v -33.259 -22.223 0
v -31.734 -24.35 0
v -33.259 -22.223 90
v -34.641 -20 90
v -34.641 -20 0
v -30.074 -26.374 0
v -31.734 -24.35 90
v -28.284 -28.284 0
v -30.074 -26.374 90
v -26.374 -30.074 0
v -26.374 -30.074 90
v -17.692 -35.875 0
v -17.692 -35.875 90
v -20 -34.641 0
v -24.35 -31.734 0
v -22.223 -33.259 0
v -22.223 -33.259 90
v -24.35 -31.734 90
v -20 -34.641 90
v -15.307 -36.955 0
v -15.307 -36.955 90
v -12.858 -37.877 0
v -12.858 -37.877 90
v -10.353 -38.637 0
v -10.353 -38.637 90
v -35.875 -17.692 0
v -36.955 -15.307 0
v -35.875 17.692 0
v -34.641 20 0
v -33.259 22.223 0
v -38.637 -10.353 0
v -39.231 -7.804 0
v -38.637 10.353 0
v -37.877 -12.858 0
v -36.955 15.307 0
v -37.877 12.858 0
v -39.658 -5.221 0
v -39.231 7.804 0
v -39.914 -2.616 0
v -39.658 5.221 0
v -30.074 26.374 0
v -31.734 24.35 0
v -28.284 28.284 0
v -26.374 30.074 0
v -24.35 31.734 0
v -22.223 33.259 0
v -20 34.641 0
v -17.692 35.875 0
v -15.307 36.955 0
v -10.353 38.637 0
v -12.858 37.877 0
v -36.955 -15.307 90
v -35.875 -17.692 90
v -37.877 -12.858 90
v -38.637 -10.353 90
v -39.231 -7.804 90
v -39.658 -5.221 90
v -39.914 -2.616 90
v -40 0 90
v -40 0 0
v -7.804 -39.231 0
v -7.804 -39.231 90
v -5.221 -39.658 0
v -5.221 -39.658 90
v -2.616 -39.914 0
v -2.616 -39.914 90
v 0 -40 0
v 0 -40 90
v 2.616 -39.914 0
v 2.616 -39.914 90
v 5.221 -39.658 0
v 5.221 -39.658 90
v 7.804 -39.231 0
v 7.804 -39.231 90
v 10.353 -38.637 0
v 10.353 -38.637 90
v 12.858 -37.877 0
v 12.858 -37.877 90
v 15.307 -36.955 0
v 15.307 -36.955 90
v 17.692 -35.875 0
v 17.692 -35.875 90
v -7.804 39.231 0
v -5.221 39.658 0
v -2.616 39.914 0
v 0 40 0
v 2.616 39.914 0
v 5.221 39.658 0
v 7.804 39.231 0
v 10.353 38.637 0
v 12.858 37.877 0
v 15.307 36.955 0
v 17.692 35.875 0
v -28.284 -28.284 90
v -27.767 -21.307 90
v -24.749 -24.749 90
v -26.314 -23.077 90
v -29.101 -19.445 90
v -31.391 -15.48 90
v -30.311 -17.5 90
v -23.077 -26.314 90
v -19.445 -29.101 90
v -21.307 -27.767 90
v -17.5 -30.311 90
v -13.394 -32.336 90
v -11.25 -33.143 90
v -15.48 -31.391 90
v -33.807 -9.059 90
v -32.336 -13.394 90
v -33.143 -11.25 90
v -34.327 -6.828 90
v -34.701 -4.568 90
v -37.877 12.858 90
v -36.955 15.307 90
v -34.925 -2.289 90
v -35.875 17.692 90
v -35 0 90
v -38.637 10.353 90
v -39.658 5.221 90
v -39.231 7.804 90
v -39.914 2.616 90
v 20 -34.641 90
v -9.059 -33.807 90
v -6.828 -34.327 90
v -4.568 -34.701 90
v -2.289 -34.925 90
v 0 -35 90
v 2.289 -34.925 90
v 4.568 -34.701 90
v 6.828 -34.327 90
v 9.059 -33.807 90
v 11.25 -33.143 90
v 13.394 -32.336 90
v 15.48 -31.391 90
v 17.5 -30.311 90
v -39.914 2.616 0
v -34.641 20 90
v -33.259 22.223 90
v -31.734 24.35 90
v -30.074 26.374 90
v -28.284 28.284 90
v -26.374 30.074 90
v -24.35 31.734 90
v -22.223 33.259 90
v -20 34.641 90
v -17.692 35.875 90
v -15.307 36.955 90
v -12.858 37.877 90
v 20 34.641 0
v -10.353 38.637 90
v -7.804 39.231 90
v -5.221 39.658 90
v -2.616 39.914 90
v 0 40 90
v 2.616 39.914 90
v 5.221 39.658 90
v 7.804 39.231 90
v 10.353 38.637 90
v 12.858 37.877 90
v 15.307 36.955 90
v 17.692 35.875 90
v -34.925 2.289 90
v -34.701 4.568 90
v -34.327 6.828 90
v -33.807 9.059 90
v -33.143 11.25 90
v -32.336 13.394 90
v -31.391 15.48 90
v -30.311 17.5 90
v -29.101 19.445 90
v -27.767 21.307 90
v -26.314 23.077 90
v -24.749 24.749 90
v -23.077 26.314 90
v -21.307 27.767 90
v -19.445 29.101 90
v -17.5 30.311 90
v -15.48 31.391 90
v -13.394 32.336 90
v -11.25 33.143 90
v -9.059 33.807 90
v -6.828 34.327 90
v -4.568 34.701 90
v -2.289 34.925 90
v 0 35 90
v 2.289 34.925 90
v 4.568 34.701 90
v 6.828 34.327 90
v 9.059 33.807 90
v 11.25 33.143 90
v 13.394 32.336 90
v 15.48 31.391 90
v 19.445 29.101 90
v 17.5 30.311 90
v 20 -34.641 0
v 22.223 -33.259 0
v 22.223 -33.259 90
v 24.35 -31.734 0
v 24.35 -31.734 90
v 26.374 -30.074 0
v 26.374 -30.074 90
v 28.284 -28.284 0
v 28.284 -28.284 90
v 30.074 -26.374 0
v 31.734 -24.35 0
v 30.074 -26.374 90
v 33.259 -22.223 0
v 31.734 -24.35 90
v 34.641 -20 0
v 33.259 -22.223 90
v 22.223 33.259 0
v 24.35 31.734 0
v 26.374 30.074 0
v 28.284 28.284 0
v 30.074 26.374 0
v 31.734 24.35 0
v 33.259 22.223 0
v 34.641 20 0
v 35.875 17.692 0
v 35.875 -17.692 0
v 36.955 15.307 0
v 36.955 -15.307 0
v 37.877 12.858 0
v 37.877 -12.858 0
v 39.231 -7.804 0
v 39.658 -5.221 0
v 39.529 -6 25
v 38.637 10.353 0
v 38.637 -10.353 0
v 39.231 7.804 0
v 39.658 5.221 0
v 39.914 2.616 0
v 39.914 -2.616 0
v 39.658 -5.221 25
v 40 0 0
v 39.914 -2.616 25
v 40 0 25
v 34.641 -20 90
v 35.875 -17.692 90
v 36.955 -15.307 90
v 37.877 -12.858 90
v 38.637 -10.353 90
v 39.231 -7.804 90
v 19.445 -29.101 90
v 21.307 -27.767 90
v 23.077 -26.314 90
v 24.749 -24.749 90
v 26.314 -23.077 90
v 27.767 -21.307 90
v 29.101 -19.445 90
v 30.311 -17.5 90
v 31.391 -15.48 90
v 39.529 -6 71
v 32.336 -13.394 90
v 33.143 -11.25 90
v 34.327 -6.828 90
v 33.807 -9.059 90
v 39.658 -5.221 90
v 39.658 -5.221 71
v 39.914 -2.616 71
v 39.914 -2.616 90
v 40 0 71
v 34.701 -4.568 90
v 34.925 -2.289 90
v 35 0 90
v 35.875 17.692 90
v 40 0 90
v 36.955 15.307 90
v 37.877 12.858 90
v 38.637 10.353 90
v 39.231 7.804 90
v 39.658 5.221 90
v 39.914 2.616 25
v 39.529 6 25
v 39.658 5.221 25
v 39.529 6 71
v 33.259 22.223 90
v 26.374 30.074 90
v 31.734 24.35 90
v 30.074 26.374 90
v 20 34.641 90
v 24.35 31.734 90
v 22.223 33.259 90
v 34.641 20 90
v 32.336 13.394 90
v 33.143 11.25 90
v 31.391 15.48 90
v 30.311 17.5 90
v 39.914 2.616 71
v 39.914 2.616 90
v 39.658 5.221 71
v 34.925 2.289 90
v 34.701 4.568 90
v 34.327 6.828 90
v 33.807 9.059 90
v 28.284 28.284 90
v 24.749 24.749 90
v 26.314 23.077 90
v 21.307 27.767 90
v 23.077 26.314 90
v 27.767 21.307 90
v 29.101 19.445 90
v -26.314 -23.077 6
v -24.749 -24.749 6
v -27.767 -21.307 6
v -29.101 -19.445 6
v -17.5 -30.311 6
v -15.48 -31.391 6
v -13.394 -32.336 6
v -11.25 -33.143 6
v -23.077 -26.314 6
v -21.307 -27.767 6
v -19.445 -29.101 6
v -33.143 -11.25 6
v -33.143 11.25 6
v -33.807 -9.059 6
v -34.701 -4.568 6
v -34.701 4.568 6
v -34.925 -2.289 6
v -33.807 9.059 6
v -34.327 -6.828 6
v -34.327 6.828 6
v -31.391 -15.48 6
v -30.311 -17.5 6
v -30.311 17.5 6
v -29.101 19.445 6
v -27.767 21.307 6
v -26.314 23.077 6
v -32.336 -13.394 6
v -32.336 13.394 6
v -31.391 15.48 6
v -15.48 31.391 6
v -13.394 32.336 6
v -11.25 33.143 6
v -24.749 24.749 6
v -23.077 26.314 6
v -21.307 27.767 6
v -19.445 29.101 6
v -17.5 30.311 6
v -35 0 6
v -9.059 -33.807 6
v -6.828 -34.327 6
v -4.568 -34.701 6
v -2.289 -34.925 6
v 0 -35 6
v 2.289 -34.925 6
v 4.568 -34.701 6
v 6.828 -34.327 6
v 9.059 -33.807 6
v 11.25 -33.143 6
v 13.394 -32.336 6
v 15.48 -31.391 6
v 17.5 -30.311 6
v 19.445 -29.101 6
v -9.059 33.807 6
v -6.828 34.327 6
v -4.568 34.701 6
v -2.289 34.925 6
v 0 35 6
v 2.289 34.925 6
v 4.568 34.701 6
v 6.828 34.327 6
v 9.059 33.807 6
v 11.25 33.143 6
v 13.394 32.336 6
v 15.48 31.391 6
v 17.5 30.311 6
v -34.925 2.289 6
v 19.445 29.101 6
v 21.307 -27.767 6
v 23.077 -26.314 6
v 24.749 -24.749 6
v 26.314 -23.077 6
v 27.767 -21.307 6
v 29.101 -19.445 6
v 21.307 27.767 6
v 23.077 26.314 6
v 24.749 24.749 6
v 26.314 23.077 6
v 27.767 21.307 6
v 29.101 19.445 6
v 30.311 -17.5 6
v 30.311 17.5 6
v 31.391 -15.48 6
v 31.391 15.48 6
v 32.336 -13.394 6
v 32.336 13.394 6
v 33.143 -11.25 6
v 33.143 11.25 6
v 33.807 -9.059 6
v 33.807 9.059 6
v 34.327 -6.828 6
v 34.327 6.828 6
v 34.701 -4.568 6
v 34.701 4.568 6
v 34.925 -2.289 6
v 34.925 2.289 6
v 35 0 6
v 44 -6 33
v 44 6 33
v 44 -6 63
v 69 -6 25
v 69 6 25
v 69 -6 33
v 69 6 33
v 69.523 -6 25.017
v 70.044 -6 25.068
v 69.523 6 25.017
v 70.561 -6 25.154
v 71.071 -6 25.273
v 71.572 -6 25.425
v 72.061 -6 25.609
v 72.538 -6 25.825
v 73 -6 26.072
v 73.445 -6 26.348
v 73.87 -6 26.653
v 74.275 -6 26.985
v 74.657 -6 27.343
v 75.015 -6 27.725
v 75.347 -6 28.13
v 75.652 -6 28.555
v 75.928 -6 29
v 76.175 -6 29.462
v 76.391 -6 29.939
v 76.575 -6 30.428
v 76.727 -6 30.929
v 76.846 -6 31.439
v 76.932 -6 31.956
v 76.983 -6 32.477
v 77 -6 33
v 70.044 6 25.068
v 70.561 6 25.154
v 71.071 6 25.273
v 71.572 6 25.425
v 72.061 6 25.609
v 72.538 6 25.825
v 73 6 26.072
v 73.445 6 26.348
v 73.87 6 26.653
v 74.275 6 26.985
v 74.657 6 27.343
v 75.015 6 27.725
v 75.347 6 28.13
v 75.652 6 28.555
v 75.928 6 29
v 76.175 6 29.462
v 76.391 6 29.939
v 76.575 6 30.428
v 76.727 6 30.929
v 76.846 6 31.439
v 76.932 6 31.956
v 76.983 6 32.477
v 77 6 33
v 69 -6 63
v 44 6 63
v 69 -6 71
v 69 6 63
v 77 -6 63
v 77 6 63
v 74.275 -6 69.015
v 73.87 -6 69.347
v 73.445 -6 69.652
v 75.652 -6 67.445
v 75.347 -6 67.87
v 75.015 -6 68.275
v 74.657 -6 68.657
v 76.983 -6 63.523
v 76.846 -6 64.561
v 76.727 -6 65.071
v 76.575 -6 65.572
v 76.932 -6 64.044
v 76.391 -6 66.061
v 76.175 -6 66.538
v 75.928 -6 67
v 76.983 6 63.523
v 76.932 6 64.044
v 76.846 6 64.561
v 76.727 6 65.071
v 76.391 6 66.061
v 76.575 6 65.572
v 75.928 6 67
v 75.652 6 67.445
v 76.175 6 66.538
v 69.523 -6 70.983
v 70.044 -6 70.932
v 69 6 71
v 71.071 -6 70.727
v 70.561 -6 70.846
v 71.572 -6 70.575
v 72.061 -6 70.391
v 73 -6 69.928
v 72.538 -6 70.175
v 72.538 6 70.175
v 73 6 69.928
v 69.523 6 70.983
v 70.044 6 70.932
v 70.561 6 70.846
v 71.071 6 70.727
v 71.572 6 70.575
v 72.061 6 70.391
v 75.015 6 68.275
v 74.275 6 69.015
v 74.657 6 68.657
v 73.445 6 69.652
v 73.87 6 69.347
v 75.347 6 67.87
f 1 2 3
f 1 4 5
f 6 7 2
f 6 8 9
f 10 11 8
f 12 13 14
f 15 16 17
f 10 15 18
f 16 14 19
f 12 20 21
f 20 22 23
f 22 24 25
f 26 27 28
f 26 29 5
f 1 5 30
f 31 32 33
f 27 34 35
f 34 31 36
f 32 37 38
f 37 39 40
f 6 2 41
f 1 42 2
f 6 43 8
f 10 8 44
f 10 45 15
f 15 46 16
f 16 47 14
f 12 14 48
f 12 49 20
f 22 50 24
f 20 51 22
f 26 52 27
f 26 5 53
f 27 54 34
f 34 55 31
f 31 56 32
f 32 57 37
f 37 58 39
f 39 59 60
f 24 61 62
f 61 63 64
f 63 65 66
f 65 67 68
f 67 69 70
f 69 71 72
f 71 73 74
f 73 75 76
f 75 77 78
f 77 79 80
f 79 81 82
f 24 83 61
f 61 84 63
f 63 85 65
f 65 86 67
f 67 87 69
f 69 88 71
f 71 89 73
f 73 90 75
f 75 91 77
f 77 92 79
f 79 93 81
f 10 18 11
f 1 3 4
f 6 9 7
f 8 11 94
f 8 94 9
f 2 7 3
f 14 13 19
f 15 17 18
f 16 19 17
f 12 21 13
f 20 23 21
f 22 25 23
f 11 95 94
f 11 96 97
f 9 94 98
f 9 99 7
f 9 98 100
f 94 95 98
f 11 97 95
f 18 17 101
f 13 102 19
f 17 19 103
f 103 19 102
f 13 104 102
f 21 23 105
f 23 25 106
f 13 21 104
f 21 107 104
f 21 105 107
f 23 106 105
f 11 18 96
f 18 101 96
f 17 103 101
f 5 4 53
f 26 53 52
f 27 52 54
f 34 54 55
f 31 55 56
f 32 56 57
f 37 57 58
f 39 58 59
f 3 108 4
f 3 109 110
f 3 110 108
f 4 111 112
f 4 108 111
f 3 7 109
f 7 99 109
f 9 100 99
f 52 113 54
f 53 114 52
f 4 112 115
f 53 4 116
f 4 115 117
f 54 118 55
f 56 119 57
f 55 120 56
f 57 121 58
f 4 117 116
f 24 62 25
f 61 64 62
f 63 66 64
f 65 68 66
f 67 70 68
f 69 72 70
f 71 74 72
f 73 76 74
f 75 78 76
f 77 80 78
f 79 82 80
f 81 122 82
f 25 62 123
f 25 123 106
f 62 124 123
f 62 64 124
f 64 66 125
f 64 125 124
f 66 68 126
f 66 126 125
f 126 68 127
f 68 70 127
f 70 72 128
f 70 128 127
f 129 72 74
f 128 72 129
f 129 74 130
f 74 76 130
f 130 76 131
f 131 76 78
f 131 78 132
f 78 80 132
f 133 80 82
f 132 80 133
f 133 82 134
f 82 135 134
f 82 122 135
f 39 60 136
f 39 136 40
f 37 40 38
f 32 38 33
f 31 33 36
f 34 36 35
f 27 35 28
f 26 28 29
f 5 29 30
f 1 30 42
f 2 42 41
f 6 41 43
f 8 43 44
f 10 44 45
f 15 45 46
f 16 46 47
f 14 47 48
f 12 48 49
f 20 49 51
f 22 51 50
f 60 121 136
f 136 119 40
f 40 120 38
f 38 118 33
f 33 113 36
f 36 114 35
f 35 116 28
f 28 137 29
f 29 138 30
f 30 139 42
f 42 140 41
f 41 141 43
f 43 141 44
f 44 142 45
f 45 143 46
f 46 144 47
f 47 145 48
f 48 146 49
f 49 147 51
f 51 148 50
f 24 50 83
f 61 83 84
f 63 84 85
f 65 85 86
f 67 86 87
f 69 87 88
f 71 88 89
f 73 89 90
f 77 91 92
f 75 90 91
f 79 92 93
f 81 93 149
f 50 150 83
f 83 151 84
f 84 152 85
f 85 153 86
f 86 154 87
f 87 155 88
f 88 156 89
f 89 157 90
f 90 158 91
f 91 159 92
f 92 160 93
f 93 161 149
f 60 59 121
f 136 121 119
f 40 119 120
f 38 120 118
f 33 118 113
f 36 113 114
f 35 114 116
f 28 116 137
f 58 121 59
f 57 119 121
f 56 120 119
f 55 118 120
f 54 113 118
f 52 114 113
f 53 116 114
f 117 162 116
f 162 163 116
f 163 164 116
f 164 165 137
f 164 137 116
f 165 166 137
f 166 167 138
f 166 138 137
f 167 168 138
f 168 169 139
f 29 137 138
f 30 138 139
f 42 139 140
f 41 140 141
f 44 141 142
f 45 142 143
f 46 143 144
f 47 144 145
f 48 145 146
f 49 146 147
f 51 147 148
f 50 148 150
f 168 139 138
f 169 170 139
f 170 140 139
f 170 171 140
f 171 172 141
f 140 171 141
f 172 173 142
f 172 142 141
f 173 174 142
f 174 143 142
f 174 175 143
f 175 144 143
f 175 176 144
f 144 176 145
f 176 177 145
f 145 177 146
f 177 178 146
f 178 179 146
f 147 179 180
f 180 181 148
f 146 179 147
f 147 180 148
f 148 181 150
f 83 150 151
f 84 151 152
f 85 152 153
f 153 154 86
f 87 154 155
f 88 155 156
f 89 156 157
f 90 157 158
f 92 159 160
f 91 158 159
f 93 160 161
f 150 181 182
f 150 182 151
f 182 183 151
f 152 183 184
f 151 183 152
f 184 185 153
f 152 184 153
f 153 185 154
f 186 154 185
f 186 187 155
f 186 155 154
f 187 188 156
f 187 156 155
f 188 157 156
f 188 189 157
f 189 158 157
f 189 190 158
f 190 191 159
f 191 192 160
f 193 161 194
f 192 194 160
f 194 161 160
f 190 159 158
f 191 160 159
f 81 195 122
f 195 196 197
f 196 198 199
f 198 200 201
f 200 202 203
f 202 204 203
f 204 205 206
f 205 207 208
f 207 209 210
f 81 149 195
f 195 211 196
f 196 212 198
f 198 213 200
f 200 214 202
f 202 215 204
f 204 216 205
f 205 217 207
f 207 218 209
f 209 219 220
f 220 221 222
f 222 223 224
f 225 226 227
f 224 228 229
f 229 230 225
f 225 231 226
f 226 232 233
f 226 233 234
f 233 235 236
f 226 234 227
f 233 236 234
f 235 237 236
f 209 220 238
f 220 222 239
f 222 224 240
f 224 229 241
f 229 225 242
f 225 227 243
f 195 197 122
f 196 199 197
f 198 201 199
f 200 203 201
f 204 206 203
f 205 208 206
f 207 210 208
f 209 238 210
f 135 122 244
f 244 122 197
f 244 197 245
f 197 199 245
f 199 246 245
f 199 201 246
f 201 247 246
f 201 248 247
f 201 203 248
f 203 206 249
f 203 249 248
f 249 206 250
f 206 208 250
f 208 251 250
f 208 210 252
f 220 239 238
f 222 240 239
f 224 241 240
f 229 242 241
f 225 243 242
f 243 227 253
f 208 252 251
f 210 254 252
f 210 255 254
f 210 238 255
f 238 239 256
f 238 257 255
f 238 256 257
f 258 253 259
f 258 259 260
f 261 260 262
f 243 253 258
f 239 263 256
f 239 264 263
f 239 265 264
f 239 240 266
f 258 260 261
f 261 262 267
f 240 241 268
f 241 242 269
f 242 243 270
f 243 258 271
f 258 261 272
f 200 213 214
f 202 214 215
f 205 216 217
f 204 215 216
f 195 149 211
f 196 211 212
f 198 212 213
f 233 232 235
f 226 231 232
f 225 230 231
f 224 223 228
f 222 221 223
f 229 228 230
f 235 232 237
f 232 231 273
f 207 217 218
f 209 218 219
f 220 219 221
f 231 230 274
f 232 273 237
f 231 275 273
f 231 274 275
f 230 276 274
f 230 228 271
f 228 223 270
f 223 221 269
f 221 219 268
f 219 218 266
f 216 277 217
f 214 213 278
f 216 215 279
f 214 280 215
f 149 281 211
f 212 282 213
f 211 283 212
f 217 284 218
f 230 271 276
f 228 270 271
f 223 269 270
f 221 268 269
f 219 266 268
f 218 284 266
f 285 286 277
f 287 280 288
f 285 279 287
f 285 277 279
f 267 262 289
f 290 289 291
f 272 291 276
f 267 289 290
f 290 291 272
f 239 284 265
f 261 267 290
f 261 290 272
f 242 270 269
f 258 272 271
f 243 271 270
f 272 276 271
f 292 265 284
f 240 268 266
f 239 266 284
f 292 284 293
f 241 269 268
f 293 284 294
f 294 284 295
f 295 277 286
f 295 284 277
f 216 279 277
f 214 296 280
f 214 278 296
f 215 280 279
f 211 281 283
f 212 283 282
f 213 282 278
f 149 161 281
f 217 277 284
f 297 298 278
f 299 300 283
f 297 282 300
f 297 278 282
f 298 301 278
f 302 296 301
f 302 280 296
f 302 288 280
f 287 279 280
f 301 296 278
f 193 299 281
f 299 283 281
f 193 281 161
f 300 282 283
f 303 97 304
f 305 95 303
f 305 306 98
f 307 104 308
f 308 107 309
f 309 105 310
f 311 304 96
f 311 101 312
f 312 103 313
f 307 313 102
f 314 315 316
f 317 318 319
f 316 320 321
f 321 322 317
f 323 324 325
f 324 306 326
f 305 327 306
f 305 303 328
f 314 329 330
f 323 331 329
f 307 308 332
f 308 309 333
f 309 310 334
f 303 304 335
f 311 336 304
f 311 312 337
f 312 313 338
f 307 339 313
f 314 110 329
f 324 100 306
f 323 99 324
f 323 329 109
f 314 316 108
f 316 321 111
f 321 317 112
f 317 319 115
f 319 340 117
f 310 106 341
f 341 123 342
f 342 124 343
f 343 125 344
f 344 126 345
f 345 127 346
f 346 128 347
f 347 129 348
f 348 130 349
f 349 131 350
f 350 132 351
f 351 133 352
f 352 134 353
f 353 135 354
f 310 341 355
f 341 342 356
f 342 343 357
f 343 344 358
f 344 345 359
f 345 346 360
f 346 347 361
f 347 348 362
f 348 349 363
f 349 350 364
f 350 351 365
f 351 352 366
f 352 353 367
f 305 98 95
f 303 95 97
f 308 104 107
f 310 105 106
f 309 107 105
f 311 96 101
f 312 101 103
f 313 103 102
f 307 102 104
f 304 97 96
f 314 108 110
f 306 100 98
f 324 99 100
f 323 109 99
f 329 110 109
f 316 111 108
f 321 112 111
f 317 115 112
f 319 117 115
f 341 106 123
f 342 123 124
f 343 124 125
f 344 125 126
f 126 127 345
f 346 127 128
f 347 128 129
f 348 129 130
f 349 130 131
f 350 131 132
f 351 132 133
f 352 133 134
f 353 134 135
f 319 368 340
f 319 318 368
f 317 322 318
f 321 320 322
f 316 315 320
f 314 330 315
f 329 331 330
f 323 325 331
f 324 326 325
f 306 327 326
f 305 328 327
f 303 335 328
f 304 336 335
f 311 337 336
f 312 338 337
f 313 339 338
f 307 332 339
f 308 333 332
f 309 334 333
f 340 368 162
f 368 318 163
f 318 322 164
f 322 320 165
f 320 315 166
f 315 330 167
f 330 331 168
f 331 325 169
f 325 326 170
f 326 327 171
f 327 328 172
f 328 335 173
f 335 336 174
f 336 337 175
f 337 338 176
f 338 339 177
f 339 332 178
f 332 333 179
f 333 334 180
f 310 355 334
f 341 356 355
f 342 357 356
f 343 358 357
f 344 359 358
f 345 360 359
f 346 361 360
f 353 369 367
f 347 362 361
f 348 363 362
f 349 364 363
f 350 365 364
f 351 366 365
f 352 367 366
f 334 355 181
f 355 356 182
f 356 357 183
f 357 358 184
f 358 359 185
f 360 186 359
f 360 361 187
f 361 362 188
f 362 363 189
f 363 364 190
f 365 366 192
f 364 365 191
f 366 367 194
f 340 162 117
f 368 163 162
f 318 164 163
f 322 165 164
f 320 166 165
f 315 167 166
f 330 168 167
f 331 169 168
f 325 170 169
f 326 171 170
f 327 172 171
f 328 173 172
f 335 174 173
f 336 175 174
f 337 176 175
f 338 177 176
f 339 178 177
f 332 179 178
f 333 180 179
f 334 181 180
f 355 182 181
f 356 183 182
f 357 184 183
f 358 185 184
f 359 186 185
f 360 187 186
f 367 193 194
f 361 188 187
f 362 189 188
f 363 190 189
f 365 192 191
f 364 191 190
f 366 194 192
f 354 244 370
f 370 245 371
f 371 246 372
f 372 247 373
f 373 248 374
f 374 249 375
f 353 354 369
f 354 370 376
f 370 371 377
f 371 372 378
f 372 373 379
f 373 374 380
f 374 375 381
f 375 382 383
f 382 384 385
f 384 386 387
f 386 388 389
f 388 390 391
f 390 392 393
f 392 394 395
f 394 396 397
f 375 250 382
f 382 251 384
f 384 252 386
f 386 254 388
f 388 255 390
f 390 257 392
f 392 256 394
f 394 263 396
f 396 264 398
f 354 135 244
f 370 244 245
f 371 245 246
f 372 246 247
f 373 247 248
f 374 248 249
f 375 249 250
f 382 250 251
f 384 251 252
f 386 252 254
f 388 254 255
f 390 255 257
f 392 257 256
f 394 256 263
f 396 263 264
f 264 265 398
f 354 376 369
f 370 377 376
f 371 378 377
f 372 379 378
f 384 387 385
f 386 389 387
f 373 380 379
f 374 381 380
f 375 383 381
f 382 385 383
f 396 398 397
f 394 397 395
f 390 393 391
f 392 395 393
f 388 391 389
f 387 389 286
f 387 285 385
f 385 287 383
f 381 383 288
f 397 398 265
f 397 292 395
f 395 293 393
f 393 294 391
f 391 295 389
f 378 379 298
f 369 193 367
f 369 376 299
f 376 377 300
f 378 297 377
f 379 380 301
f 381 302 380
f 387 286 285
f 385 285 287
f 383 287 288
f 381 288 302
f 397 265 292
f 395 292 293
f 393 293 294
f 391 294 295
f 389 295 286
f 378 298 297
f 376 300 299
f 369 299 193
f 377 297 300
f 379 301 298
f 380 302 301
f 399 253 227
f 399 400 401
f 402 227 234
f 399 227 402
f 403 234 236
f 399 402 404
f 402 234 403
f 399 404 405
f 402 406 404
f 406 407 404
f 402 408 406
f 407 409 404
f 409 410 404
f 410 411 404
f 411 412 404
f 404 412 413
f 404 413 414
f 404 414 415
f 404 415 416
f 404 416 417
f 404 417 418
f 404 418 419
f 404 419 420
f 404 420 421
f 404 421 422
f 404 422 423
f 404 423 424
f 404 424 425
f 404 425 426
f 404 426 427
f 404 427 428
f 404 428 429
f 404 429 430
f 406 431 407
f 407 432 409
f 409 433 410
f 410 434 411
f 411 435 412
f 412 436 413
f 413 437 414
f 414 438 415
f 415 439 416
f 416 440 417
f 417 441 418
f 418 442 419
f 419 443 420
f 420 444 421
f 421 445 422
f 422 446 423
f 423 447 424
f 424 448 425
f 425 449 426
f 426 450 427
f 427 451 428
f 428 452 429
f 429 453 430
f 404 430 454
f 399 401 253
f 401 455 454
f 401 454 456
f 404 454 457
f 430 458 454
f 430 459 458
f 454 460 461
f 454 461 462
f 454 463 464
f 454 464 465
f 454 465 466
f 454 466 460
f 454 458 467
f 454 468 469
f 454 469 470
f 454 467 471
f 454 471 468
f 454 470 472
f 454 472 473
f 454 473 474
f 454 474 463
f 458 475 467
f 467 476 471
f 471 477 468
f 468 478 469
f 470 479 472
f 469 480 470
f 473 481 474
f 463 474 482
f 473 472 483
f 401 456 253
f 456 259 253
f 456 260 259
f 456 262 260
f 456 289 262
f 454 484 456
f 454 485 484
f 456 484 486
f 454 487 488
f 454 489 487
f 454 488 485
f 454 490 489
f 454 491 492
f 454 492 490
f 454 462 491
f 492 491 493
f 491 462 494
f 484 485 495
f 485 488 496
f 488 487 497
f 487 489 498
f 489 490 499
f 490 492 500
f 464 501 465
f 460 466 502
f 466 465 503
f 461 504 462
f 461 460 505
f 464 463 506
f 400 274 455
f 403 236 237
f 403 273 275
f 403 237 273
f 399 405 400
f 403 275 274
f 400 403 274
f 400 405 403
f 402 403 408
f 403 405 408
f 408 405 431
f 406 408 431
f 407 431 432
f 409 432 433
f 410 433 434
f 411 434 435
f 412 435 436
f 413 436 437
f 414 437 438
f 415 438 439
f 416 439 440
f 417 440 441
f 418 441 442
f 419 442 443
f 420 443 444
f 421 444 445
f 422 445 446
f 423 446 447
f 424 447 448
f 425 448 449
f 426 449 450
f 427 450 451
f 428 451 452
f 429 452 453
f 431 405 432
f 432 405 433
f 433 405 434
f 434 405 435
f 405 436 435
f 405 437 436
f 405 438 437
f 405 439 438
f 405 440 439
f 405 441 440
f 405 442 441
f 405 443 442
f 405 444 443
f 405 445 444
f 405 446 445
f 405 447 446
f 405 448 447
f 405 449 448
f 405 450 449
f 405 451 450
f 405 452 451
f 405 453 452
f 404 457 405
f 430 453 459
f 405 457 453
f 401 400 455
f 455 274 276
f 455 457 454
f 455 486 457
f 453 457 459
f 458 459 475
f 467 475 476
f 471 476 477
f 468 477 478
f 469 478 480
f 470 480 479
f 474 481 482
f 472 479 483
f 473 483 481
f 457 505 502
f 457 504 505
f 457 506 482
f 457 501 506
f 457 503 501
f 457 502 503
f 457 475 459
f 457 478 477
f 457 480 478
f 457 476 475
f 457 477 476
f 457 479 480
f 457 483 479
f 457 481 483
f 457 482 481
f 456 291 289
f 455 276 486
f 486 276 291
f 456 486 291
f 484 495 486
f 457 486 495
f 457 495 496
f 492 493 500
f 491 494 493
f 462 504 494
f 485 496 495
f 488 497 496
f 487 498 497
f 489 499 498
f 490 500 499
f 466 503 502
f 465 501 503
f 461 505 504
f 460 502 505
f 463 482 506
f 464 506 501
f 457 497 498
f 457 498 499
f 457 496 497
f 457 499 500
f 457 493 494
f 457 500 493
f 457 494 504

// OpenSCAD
// ===== Mug with oriented D-shaped handle (+X side only) =====

$fn = 96;

// ---- Body parameters ----
outer_d   = 80;          // 外径
inner_d   = 70;          // 内径 (肉厚 5mm)
height    = 90;          // 全高
bottom_th = 6;           // 底面厚み

outer_r = outer_d / 2;   // 40
inner_r = inner_d / 2;   // 35

// ---- Handle parameters ----
h_open_h  = 30;          // 取手内側の空間 高さ
h_open_w  = 25;          // 取手内側の空間 幅 (径方向)
h_thick   = 8;           // 取手の太さ(上下バー・外側部の厚み)
h_width   = 12;          // 取手の幅 (Y方向)
h_embed   = 4;           // 本体外周へのめり込み量(確実に union するため)

// 取手の高さ方向中心(マグ中央付近)
h_center_z = bottom_th + (height - bottom_th) / 2;

// ---- Body ----
module mug_body() {
    difference() {
        cylinder(h = height, r = outer_r);
        translate([0, 0, bottom_th])
            cylinder(h = height - bottom_th + 1, r = inner_r);
    }
}

// ---- Handle : D shape (flat on body side, round outside) ----
// 2D プロファイルを XZ 平面で作り、Y 方向に押し出す
module handle_profile() {
    // 内側の穴の開始 X(本体外周からわずかに内側へ食い込ませる)
    x0 = outer_r - h_embed;         // 本体に埋まる側の面
    x1 = x0 + h_thick;              // 穴の内側端(手前)
    x2 = x1 + h_open_w;             // 穴の外側端
    x3 = x2 + h_thick;              // 取手の外端

    difference() {
        // 外形:D 字(本体側は直線、外側は半円)
        hull() {
            translate([x0, -(h_open_h / 2 + h_thick)])
                square([1, h_open_h + 2 * h_thick]);
            translate([x2, -(h_open_h / 2)])
                circle(r = h_thick);
            translate([x2,  (h_open_h / 2)])
                circle(r = h_thick);
        }
        // 内側の空間 30(高さ) x 25(幅)
        translate([x1, -h_open_h / 2])
            square([h_open_w, h_open_h]);
    }
}

module handle() {
    translate([0, h_width / 2, 0])
        rotate([90, 0, 0])
            linear_extrude(height = h_width)
                handle_profile();
}

// ---- Assembly ----
union() {
    mug_body();
    translate([0, 0, h_center_z])
        handle();
}
